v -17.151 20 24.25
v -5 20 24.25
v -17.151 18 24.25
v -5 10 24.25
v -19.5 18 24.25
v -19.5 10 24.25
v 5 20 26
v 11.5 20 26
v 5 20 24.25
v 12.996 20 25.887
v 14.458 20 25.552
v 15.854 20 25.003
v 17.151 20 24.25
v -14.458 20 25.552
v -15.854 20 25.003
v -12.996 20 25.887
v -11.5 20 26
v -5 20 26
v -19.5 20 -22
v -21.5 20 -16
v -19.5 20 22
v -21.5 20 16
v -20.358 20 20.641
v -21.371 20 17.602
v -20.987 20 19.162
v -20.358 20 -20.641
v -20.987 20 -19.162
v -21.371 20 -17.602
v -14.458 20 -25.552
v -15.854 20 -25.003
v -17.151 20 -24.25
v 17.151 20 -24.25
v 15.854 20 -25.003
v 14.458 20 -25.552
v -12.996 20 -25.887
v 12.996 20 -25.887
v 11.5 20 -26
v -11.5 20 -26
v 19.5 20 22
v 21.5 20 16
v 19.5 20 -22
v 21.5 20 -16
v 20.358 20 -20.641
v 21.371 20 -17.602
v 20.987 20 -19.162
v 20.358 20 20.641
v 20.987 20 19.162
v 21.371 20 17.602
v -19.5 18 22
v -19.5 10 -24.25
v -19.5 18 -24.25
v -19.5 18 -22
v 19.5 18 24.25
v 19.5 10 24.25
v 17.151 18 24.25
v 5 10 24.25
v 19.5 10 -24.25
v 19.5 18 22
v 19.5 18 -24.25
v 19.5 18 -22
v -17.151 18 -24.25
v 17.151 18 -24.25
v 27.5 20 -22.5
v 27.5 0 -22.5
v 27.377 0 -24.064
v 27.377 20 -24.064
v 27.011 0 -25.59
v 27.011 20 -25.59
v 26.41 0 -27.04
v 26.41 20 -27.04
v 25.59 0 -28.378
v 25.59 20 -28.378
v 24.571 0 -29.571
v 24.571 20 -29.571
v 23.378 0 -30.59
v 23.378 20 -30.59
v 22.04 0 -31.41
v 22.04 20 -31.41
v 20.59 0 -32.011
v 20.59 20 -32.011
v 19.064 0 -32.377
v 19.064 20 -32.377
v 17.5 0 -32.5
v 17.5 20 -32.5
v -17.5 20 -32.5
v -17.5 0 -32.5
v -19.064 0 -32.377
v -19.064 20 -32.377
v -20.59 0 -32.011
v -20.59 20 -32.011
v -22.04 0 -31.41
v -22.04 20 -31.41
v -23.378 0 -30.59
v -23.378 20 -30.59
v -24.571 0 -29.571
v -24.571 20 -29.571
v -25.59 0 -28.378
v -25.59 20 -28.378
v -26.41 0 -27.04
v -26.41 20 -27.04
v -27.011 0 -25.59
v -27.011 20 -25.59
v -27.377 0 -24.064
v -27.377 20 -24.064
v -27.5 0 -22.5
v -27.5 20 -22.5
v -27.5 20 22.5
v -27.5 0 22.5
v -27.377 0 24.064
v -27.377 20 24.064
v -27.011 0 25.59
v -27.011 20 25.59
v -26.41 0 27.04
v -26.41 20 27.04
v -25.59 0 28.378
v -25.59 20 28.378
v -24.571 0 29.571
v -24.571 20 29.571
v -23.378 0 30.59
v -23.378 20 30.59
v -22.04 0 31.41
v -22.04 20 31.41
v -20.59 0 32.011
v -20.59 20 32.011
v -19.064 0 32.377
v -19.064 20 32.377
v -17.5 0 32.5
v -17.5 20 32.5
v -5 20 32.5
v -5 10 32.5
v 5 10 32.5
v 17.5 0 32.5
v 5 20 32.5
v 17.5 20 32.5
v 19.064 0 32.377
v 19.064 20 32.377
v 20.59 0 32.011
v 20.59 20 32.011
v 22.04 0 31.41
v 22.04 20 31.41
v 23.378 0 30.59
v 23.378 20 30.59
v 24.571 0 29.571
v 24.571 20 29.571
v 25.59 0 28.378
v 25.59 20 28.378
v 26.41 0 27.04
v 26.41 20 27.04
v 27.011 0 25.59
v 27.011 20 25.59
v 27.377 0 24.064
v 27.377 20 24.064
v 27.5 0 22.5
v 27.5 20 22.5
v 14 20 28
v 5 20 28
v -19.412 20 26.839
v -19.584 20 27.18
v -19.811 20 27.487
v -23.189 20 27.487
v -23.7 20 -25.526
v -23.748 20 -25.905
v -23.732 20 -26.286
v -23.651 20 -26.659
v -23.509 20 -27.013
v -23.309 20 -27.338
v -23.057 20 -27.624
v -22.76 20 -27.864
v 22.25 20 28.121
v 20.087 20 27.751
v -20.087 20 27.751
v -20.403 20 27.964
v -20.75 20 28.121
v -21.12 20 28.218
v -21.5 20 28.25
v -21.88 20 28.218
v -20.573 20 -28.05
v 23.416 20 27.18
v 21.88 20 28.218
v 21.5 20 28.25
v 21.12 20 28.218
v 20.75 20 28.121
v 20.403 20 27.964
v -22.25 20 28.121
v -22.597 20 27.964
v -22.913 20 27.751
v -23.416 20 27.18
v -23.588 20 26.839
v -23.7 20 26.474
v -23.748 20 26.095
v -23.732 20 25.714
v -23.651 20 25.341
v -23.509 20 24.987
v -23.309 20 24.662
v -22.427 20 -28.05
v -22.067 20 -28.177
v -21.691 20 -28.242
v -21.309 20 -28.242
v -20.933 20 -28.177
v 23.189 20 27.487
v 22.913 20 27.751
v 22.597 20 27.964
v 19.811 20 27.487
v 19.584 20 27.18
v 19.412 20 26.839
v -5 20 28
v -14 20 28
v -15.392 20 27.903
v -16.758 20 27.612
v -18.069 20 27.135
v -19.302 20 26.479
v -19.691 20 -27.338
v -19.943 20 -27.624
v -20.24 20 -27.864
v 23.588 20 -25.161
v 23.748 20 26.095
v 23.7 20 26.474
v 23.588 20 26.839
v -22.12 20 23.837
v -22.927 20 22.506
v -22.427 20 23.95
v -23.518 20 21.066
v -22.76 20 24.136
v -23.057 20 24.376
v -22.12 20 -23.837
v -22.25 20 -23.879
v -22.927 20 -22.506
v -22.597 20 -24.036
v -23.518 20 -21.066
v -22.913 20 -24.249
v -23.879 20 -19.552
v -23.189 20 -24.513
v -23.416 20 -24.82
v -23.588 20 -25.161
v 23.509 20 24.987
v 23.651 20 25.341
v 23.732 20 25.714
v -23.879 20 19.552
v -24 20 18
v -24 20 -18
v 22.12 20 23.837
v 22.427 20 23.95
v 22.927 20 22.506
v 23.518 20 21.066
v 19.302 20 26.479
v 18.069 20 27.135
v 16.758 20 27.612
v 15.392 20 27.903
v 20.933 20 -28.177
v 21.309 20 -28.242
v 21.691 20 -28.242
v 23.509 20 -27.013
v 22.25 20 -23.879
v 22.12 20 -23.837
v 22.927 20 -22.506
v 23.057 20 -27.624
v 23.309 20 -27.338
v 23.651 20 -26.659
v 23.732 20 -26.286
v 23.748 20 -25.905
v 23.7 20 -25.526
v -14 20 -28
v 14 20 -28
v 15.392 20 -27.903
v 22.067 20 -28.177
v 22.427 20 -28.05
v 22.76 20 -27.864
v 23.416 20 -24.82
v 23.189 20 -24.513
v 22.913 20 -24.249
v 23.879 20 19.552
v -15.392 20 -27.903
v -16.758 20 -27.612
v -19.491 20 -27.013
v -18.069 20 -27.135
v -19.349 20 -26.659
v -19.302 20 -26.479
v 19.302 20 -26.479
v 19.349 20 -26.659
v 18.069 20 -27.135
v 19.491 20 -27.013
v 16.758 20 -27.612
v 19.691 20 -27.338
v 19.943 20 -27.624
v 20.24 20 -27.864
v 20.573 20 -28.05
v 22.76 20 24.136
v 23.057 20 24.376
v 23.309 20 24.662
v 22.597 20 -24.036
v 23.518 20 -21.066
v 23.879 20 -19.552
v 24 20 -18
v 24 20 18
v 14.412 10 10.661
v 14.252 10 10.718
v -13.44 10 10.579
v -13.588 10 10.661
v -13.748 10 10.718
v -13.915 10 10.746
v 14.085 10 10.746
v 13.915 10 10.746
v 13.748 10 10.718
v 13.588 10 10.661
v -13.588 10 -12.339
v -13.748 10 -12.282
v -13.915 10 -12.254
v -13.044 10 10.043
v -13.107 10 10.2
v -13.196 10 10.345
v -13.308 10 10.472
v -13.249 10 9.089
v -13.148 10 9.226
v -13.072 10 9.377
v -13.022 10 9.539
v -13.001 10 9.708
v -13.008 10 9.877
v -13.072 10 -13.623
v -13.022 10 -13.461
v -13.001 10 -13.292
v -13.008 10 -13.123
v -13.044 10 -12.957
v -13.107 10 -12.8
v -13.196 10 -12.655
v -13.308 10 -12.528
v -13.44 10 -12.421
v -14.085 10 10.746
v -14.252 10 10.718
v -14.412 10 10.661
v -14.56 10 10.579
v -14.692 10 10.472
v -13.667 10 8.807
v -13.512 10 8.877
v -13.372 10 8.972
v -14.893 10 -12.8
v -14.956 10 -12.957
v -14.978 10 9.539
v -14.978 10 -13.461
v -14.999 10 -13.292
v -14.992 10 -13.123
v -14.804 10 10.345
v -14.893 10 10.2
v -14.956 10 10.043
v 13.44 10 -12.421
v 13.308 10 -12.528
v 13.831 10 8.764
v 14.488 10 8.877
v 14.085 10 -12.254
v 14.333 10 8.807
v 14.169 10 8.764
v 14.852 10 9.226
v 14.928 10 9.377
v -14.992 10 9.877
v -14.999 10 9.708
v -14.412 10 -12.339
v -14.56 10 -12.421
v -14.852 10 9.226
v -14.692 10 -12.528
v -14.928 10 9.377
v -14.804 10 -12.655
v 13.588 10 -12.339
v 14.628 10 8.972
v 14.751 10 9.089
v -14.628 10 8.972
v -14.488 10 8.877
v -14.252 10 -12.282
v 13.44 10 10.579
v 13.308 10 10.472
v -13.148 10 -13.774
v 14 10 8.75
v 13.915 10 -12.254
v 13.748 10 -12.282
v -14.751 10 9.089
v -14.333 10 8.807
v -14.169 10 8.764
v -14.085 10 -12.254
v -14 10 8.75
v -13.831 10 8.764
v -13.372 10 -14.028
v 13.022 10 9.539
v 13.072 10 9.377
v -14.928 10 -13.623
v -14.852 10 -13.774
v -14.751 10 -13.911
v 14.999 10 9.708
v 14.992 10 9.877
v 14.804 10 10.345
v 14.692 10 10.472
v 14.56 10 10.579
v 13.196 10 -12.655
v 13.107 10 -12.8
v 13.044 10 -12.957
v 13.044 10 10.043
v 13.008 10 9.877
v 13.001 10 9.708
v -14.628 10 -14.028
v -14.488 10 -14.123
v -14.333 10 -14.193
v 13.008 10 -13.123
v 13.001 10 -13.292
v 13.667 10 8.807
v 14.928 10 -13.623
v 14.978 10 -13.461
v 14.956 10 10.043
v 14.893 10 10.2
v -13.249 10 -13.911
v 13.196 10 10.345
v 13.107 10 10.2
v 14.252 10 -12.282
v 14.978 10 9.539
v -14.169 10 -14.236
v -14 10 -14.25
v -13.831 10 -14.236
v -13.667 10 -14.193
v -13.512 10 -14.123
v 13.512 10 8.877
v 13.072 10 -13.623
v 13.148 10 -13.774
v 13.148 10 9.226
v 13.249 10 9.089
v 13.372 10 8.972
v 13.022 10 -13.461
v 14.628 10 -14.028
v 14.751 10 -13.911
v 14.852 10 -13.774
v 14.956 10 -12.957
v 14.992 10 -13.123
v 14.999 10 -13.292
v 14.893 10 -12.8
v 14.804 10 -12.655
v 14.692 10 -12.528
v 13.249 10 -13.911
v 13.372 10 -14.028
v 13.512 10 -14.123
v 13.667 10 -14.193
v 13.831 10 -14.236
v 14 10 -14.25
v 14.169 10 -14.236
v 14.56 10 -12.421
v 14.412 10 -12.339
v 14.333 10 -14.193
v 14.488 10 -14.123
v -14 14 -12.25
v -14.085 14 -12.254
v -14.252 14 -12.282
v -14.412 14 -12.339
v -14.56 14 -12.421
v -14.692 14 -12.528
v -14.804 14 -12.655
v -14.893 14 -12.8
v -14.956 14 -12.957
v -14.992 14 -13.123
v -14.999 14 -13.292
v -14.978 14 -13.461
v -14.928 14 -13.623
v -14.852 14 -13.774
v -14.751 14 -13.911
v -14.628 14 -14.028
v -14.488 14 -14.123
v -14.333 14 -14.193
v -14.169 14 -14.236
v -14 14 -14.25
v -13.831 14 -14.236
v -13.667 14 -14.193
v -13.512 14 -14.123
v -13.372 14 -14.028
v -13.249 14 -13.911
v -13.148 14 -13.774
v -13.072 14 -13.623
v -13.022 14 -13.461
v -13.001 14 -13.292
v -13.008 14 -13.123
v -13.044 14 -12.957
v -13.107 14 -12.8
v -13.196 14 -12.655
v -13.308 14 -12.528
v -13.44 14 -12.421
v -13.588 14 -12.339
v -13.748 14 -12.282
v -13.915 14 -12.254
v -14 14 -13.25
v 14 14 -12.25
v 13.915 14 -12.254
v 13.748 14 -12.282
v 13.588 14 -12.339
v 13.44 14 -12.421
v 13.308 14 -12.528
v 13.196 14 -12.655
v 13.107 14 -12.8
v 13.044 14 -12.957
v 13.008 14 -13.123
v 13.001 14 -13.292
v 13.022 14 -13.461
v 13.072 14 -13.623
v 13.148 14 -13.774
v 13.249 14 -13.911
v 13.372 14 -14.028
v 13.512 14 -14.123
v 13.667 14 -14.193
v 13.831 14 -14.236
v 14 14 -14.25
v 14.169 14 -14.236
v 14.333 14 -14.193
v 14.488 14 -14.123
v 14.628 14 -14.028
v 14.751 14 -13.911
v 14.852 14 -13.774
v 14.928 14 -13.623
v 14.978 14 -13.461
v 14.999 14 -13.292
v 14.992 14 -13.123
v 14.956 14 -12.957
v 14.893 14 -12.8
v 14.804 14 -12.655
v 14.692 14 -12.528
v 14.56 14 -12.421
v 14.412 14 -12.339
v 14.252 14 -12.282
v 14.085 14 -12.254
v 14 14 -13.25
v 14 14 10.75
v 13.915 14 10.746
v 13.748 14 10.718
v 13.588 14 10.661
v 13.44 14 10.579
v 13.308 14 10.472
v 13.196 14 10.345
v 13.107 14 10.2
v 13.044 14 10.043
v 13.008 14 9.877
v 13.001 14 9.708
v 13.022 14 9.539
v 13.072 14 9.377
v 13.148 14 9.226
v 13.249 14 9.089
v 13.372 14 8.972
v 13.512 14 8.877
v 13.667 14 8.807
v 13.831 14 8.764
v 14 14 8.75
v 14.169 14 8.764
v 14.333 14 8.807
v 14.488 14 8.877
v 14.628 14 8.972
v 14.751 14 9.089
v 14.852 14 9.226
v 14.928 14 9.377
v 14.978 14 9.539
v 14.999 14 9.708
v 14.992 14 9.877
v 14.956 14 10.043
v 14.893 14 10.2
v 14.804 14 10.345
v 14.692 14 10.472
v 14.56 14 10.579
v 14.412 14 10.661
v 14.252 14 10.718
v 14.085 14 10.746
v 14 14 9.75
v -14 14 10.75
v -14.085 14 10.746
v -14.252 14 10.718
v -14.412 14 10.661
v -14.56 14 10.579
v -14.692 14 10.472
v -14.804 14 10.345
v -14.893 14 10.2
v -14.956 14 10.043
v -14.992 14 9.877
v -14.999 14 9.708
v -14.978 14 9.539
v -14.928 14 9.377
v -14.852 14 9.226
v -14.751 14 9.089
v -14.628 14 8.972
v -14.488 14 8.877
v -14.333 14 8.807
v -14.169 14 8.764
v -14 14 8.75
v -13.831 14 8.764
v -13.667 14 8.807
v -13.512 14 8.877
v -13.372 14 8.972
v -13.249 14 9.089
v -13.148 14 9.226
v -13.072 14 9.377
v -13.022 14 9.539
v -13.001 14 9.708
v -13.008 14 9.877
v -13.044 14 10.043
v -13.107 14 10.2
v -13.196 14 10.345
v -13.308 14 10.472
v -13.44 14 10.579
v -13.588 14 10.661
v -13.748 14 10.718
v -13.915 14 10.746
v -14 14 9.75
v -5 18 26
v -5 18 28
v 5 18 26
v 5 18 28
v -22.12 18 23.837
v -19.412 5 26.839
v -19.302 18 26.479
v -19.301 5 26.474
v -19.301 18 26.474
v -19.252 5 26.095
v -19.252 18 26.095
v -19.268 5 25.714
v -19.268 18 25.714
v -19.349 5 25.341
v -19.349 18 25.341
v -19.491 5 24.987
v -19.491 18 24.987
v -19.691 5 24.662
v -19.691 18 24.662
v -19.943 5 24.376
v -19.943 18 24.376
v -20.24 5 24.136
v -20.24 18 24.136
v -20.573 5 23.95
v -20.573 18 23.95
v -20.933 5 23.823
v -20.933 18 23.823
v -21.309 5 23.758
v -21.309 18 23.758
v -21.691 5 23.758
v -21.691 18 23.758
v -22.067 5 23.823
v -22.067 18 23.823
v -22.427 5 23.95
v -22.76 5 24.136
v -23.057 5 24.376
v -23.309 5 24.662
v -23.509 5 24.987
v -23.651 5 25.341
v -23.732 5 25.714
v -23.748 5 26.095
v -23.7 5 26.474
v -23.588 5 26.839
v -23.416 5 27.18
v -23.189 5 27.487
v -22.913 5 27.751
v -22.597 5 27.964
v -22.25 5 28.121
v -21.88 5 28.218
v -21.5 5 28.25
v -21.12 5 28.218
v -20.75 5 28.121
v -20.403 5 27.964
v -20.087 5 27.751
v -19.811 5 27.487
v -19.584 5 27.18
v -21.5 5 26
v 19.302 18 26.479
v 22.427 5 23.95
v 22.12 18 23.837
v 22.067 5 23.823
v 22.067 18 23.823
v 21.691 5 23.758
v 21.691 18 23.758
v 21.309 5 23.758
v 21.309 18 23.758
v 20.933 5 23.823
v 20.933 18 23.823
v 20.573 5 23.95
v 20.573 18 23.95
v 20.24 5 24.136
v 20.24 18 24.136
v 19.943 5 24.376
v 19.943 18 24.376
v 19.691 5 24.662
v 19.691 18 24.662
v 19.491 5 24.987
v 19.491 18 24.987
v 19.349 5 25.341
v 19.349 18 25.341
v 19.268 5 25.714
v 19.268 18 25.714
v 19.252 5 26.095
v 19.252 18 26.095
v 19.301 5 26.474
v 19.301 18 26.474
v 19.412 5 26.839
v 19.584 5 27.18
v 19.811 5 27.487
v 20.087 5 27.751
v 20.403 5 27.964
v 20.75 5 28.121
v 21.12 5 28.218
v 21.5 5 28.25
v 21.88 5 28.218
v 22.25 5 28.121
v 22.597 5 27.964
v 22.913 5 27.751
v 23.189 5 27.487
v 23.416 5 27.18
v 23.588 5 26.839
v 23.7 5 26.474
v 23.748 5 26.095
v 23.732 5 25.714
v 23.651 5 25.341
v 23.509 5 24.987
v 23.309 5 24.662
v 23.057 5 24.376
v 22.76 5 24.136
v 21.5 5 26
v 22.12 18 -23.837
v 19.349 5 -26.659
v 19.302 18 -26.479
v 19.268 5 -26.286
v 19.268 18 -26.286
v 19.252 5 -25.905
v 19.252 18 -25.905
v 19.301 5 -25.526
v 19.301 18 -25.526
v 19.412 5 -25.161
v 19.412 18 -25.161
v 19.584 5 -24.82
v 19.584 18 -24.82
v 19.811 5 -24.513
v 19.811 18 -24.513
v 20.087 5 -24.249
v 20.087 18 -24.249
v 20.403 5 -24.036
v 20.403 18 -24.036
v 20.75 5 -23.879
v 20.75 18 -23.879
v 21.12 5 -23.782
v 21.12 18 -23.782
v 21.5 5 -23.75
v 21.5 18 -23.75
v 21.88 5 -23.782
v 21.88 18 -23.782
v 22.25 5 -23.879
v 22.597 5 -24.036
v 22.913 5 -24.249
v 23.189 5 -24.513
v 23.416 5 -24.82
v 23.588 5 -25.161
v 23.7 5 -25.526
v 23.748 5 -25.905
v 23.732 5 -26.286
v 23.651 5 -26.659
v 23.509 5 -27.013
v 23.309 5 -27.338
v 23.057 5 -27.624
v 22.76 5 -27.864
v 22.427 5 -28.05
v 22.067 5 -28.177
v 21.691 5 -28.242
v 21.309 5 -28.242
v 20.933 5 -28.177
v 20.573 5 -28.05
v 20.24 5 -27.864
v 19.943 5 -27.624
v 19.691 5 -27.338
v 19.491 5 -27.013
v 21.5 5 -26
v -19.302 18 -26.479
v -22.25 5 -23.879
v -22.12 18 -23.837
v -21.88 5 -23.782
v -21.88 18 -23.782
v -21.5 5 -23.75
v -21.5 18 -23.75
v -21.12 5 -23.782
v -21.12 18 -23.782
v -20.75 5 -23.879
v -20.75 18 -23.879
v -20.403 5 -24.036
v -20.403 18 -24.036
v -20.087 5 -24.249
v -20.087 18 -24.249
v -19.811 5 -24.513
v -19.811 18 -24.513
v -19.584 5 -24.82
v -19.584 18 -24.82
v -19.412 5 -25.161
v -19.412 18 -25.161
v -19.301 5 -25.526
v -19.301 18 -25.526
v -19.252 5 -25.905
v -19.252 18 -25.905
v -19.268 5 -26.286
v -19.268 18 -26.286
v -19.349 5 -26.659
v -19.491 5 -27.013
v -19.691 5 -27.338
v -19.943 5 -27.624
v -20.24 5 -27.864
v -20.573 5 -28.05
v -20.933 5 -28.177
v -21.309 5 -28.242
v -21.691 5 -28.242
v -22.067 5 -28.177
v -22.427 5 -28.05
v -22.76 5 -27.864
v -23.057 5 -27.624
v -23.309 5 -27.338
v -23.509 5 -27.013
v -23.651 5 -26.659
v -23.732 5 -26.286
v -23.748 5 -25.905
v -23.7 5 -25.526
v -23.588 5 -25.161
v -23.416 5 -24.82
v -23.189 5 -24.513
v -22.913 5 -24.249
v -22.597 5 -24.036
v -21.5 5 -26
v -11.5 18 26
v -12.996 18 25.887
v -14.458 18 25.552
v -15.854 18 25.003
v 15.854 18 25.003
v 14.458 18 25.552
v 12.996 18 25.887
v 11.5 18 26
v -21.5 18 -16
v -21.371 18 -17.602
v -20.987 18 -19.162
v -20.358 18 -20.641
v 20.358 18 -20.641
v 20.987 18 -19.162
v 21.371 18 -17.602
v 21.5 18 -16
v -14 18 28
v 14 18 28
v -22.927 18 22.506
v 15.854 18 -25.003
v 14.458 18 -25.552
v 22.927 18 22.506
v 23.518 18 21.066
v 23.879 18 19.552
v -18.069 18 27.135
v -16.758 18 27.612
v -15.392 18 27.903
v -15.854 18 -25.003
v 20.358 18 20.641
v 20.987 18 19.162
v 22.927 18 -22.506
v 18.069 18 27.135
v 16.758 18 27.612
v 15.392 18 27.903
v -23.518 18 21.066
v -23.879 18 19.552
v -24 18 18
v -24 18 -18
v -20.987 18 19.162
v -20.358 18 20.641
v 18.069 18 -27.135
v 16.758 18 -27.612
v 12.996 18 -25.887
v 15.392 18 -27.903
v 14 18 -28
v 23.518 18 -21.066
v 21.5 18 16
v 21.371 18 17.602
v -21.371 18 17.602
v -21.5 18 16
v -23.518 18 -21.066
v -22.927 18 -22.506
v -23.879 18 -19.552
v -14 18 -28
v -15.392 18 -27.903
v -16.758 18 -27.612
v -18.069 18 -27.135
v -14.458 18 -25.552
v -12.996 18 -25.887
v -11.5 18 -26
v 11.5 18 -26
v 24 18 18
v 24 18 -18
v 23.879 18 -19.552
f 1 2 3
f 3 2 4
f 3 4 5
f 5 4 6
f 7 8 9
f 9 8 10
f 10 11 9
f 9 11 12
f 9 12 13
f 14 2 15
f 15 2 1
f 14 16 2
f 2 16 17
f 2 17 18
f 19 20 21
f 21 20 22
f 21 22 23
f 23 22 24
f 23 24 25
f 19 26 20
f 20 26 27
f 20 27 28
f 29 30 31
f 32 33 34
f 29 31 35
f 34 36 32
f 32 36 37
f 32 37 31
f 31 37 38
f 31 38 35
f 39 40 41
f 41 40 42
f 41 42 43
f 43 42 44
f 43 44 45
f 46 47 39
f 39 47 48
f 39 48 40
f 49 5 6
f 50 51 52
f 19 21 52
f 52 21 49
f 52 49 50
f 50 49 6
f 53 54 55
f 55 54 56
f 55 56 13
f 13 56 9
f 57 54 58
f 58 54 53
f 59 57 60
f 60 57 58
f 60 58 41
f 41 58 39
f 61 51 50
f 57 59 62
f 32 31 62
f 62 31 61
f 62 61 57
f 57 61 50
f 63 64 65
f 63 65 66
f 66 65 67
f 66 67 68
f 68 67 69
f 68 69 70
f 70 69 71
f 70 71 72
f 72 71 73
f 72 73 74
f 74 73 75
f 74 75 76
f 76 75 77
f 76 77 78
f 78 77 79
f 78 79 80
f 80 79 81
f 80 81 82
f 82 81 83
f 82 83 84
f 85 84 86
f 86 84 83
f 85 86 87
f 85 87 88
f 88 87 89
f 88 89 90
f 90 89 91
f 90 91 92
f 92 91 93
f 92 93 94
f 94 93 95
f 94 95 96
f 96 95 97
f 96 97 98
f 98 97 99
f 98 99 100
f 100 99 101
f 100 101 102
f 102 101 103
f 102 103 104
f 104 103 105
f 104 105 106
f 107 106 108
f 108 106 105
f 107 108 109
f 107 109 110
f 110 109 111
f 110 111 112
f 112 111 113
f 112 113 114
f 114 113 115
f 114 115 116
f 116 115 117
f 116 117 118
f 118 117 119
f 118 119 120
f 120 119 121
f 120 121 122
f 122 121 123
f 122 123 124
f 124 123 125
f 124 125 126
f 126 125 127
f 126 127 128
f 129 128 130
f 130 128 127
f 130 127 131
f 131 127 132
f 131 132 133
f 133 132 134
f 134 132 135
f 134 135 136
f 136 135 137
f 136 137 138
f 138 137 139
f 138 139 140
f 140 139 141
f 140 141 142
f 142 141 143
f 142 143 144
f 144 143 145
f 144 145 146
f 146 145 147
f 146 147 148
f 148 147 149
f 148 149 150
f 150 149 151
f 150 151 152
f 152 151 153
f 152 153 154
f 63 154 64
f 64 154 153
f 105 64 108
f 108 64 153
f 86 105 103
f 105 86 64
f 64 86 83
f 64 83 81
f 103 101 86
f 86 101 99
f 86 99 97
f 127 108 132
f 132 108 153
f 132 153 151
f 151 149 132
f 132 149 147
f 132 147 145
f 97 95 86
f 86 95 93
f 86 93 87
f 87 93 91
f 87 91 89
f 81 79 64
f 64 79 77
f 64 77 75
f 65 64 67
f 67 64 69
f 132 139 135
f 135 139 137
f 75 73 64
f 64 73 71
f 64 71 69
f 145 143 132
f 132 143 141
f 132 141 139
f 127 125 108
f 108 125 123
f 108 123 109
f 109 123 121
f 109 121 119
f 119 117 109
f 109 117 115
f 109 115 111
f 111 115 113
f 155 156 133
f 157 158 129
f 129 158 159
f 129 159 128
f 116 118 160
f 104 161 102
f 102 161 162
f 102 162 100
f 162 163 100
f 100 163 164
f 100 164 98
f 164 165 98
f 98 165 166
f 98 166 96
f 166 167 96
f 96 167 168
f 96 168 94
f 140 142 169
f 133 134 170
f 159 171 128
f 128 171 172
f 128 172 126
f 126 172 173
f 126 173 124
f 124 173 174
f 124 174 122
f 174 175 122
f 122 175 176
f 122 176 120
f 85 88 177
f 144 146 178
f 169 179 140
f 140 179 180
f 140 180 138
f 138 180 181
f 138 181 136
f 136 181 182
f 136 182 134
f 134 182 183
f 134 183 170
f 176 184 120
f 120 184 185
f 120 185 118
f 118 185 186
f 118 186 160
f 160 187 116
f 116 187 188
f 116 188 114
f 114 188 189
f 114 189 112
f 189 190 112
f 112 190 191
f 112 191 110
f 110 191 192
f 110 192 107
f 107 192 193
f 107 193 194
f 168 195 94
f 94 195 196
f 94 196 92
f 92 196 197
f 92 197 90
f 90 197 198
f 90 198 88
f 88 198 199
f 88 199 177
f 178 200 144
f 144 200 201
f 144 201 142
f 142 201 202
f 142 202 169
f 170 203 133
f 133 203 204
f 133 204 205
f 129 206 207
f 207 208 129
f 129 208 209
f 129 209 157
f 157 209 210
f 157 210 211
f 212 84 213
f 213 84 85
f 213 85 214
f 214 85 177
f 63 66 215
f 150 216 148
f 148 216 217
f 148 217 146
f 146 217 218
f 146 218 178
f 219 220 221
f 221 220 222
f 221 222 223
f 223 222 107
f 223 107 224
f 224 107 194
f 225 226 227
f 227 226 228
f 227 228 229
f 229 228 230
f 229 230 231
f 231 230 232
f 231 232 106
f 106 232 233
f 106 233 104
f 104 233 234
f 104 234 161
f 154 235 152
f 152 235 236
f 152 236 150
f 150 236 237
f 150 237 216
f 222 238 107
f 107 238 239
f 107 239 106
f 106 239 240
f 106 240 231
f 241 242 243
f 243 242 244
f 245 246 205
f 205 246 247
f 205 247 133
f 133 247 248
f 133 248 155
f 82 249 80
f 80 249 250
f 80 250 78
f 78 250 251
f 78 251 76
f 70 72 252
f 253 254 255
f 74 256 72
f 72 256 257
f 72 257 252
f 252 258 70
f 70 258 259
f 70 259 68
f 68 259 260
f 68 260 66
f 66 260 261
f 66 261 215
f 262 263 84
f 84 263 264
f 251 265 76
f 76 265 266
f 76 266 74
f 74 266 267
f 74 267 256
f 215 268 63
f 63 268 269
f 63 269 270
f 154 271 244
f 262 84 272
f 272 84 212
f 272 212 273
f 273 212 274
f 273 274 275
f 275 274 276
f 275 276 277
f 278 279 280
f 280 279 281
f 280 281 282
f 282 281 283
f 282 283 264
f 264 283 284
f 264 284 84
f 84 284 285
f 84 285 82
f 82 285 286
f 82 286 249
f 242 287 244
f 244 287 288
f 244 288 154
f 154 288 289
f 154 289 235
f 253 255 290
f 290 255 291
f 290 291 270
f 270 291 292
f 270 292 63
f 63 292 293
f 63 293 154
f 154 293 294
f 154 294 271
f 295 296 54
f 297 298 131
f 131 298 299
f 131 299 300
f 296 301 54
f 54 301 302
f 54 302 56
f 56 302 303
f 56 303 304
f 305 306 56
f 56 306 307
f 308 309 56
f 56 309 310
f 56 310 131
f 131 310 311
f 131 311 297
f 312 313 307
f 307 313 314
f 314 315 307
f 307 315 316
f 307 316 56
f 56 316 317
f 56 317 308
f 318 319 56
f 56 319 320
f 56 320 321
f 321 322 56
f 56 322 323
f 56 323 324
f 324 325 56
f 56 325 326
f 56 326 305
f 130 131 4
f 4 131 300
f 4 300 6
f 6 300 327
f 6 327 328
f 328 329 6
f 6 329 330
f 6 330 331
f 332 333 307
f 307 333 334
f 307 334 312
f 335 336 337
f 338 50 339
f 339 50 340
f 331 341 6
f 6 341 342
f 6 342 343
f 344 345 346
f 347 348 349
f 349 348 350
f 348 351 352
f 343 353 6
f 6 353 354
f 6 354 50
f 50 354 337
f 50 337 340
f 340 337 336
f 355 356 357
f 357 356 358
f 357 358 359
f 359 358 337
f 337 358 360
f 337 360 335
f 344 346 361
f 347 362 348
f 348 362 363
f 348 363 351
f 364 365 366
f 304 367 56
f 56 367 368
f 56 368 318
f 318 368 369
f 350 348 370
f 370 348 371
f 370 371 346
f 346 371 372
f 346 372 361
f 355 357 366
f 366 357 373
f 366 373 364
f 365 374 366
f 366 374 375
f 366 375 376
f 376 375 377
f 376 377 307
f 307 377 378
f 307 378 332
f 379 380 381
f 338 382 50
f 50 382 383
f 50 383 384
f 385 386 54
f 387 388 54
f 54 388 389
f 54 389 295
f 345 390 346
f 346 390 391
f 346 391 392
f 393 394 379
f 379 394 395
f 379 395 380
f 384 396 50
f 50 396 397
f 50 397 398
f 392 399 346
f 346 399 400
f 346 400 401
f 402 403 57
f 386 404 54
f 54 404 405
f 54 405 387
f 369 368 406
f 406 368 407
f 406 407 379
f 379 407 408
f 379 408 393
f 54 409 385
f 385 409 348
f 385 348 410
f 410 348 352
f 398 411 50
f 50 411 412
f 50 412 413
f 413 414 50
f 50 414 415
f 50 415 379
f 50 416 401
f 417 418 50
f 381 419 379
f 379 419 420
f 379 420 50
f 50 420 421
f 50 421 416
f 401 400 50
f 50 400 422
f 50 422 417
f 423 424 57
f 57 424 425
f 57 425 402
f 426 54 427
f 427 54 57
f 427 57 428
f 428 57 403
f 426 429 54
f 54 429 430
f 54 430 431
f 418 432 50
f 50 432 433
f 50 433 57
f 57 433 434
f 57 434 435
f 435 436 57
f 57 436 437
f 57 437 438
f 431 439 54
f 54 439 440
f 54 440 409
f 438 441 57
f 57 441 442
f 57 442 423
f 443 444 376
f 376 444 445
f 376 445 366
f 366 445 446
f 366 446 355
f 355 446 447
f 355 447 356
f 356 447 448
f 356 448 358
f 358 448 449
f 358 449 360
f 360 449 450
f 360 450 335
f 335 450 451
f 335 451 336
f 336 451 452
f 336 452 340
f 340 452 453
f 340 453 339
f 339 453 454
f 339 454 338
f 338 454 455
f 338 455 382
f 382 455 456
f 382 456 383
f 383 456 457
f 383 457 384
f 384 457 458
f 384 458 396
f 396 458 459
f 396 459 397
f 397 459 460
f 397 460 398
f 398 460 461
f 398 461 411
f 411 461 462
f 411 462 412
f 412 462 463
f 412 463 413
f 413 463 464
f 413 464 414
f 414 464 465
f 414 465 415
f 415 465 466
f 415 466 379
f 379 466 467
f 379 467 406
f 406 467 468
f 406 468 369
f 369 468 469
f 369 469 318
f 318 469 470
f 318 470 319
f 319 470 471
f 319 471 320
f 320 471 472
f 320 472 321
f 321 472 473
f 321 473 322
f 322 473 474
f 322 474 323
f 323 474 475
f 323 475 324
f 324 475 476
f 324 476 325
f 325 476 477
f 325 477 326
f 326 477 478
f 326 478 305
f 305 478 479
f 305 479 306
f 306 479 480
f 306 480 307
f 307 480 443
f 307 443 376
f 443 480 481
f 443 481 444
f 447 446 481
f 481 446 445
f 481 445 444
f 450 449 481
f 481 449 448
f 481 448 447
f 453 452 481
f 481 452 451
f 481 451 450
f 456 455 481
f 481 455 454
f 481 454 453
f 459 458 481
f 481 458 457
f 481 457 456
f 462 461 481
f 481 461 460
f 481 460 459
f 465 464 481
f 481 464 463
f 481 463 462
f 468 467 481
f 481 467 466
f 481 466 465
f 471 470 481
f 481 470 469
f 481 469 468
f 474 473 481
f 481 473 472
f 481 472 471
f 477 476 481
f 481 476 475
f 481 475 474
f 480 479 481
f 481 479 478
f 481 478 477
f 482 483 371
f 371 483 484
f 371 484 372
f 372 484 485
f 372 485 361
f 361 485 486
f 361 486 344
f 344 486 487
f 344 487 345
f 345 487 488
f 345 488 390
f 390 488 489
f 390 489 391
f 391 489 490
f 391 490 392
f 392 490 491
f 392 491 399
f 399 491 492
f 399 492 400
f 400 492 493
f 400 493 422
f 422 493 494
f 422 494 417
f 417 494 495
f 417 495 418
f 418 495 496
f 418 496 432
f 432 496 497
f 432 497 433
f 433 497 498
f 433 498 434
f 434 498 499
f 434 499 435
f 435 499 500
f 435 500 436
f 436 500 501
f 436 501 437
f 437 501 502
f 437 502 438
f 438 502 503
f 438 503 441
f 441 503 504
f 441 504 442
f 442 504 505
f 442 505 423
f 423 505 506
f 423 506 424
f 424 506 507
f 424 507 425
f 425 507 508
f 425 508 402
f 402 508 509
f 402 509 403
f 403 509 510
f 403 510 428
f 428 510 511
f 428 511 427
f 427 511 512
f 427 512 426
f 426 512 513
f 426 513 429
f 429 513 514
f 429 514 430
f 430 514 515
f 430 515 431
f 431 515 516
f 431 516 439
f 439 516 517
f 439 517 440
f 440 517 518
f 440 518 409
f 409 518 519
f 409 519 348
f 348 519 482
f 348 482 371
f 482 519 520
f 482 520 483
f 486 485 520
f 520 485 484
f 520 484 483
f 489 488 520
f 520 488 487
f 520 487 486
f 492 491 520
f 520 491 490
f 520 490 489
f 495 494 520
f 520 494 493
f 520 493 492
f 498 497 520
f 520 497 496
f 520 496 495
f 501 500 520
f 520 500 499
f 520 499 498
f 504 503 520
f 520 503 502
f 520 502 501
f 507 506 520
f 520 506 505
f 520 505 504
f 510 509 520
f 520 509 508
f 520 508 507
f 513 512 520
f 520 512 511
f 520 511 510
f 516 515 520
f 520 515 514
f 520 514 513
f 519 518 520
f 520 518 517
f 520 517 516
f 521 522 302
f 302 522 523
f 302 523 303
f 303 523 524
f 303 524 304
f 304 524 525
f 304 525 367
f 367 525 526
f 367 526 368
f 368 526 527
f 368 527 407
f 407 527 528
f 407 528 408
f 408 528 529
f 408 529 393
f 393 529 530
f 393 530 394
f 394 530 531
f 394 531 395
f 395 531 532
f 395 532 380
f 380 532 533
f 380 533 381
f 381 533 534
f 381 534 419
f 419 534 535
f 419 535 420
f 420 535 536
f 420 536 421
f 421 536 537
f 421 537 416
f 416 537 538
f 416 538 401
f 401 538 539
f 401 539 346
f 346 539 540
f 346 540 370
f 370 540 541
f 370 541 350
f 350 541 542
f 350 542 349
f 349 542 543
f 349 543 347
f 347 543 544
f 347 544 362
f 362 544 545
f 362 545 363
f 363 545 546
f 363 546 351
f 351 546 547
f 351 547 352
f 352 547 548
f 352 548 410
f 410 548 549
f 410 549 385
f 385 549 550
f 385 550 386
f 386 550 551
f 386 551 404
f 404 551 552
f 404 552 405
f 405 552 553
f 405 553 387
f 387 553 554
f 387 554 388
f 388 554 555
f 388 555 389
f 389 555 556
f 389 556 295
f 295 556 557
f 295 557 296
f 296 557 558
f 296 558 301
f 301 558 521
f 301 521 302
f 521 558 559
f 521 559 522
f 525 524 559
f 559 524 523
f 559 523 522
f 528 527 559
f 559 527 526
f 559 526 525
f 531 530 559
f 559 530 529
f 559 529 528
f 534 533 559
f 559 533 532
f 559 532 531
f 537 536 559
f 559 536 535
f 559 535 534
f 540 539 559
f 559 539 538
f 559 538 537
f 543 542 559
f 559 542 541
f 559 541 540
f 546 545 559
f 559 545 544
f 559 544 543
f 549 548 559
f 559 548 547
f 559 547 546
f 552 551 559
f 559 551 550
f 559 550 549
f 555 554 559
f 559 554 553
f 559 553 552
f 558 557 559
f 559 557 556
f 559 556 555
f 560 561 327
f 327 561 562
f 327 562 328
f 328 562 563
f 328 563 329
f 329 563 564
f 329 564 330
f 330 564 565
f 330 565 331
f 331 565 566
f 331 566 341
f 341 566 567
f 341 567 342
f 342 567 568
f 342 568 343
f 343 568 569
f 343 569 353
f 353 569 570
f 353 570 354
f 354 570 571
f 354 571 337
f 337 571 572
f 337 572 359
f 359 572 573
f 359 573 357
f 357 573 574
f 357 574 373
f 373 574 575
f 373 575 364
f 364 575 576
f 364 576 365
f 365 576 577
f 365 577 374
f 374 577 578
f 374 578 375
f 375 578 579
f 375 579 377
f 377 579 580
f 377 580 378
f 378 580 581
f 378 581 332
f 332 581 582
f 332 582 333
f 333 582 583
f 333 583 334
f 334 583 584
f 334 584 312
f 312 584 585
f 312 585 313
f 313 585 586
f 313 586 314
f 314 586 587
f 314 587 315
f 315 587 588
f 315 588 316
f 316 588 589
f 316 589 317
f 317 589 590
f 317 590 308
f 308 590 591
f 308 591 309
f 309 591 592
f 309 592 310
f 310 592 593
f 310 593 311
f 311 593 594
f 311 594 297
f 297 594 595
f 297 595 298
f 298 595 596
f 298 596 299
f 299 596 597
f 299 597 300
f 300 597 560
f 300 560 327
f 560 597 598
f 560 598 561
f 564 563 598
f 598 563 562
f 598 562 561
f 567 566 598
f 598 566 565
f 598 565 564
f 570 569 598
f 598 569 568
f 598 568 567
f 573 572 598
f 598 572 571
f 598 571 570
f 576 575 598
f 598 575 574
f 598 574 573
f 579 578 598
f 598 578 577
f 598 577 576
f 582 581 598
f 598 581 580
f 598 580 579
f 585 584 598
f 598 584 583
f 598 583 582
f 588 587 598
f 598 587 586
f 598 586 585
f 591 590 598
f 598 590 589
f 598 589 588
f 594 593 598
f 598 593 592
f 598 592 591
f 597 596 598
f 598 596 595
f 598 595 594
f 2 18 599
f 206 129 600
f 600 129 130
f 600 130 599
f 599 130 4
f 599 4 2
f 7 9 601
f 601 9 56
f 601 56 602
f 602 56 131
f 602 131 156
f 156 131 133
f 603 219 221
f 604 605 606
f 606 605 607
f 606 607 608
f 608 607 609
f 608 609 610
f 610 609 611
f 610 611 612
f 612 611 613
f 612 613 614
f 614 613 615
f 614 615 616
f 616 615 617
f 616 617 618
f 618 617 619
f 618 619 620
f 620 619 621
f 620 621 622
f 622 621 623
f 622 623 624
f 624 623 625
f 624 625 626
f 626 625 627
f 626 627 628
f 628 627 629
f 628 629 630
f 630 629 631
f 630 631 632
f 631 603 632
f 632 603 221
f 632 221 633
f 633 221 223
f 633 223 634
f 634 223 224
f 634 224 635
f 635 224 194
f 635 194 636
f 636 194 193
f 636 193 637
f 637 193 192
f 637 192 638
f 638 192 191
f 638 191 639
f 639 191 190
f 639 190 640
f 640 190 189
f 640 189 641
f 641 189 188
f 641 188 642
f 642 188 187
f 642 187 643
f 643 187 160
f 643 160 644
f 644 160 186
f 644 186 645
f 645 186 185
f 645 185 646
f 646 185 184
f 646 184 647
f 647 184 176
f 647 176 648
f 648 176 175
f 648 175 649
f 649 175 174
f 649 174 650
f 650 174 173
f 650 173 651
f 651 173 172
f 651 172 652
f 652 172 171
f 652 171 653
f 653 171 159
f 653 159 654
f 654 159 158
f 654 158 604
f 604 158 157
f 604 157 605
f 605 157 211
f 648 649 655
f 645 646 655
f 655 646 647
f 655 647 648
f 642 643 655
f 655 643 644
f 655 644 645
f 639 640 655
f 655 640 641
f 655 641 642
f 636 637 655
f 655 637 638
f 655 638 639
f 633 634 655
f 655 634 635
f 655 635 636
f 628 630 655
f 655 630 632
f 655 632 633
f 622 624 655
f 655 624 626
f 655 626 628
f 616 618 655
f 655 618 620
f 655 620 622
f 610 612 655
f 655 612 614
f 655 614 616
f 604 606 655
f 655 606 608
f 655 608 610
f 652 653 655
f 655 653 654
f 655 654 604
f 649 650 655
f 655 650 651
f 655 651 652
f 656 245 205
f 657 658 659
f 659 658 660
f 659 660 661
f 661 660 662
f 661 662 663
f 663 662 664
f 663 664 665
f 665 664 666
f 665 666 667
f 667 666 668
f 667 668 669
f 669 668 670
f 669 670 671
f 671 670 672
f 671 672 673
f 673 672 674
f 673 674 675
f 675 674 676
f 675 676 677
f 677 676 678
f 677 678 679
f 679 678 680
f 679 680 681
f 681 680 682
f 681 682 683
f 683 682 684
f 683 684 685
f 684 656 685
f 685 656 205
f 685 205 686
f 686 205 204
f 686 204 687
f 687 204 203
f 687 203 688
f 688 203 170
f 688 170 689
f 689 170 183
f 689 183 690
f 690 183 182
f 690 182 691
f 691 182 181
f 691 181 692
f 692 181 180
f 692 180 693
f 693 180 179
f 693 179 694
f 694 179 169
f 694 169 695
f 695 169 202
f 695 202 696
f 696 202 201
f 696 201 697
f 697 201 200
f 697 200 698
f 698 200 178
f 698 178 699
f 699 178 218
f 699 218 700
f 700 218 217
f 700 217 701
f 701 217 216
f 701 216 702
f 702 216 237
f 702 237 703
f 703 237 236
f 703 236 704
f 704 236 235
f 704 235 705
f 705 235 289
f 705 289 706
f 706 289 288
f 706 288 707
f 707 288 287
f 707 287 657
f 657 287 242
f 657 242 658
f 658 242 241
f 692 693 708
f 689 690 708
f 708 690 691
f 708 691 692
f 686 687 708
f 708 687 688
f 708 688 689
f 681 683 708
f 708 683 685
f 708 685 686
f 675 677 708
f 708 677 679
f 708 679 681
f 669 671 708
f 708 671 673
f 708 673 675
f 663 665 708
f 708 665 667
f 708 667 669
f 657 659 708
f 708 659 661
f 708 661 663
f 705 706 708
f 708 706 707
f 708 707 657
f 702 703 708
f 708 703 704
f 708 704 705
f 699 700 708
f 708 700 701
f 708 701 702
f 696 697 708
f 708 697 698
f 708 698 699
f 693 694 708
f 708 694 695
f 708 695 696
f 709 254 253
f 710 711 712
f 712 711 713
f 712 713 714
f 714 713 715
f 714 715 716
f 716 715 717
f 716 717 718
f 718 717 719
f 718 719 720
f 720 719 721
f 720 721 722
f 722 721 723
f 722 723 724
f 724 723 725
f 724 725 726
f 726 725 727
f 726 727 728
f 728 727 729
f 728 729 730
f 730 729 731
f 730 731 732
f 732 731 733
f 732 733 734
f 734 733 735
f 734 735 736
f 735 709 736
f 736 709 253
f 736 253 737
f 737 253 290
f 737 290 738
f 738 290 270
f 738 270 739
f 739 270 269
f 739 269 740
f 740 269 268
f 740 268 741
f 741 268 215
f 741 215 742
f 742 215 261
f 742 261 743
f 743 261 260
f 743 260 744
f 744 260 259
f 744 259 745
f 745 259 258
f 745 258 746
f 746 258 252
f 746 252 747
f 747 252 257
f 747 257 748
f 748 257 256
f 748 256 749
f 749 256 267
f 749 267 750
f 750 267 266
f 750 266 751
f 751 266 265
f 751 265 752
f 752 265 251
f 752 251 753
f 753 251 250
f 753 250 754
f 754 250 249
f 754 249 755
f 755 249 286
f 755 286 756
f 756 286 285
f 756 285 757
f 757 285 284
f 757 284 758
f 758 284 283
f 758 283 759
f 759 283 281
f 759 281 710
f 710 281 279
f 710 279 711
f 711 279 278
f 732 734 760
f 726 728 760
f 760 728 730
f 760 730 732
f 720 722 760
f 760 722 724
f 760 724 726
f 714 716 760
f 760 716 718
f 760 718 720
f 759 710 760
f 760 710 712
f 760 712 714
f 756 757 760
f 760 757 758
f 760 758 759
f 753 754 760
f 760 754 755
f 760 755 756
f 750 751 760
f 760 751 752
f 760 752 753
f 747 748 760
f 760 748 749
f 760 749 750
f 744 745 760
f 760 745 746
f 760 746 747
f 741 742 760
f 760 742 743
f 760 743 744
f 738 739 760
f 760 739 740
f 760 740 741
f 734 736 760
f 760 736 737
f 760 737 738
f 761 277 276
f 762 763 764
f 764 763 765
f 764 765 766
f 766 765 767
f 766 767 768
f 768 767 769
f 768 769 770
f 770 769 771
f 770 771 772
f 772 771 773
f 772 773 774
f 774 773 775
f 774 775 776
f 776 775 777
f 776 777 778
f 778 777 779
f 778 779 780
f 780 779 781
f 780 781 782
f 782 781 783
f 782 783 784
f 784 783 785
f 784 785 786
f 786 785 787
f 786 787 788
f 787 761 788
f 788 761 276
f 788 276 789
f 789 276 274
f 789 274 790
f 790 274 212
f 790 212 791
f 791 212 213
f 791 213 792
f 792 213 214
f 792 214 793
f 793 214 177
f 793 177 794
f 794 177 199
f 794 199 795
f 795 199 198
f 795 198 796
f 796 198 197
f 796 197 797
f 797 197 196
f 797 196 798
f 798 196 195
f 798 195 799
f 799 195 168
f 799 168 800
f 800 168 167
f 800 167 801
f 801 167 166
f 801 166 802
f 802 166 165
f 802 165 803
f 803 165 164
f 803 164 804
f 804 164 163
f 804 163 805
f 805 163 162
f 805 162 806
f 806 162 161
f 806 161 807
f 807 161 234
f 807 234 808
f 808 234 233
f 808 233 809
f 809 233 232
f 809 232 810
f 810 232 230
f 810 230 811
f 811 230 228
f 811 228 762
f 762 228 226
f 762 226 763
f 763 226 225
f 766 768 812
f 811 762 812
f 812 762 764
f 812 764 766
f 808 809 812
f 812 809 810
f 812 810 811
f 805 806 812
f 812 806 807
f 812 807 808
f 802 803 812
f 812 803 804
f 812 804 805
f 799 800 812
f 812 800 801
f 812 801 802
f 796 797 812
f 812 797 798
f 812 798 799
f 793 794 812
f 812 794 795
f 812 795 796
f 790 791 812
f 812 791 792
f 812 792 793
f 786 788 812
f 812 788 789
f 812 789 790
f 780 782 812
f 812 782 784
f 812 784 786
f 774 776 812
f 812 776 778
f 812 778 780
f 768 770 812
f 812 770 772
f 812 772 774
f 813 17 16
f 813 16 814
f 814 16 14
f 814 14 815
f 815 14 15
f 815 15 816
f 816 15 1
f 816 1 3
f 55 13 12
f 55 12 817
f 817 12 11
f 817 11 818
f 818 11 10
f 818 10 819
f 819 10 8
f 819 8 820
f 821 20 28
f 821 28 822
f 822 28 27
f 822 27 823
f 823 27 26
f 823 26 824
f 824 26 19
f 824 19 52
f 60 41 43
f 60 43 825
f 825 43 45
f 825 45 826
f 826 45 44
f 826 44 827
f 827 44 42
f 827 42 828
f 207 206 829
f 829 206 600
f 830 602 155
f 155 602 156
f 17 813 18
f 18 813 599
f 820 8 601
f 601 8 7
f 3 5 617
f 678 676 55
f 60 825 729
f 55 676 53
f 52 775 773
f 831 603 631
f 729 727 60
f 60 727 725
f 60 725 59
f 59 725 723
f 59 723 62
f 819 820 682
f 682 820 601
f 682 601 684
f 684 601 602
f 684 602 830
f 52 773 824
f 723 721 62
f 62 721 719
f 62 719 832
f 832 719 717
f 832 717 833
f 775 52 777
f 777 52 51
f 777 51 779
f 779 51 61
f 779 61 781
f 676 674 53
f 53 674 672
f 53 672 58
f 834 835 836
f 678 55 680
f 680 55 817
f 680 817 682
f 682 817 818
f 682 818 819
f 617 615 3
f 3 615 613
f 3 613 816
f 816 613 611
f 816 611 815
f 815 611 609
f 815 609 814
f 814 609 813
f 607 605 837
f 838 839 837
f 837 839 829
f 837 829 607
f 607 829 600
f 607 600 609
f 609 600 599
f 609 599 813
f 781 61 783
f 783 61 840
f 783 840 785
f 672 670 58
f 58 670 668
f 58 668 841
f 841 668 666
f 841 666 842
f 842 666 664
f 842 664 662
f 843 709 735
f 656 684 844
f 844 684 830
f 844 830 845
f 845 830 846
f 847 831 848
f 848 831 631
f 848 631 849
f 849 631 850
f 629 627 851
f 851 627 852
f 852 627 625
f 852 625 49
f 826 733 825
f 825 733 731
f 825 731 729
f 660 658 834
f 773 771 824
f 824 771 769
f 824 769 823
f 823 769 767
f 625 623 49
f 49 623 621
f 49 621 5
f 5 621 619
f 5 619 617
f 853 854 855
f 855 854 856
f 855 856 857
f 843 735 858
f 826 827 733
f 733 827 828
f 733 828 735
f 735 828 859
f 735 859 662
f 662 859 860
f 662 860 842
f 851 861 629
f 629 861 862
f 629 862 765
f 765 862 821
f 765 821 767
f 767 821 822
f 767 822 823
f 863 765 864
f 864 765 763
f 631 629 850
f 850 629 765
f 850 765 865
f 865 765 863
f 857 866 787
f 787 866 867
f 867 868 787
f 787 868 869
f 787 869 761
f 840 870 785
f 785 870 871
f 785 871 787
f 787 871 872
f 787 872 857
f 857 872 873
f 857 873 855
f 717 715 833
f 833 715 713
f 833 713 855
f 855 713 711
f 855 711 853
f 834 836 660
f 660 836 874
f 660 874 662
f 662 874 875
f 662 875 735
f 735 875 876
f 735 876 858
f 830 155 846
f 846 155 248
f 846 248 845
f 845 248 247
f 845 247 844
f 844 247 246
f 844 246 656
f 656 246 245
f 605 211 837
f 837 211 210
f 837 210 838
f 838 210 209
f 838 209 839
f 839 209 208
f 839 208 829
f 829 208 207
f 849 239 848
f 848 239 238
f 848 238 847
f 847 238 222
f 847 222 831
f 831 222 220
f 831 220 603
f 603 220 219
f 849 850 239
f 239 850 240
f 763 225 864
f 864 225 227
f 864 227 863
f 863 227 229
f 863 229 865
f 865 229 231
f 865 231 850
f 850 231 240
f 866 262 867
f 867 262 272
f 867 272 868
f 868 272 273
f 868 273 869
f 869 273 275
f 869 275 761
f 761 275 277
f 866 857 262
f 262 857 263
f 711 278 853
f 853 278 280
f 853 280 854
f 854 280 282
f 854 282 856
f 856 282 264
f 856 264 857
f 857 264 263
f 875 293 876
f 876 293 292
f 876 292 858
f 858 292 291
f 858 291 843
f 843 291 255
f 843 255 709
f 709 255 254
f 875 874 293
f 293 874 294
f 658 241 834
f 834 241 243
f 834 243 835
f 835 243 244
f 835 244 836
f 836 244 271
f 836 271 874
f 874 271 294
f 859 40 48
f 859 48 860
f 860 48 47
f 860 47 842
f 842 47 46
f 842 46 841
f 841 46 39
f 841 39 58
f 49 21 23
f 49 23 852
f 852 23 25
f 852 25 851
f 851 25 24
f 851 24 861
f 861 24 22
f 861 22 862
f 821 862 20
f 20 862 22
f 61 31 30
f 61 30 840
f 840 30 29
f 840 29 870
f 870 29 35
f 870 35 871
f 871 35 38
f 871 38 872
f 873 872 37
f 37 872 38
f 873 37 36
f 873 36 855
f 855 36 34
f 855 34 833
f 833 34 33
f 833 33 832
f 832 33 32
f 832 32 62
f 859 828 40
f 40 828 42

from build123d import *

# Parameters (mm, degrees)
BOSS_EXTRUDE1_DEPTH = 10
SKETCH2_W           = 39
SKETCH2_H           = 48.5
BOSS_EXTRUDE2_DEPTH = 10
SKETCH6_R           = 1
BOSS_EXTRUDE3_DEPTH = 4
SKETCH7_W           = 10
SKETCH7_H           = 8.25
CUT_EXTRUDE1_DEPTH  = 10
SKETCH8_R           = 2.25
CUT_EXTRUDE2_DEPTH  = 15
CUT_EXTRUDE3_DEPTH  = 2


with BuildPart() as part:
    # Sketch1 → Boss-Extrude1 (new body)
    with BuildSketch(Plane(origin=(0, 0, 0), x_dir=(1, 0, 0), z_dir=(0, 1, 0))):
        with BuildLine():
            Line((-17.5, 32.5), (17.5, 32.5))
            ThreePointArc((17.5, 32.5), (24.571067812, 29.571067812), (27.5, 22.5))
            Line((27.5, 22.5), (27.5, -22.5))
            ThreePointArc((27.5, -22.5), (24.571067812, -29.571067812), (17.5, -32.5))
            Line((17.5, -32.5), (-17.5, -32.5))
            ThreePointArc((-17.5, -32.5), (-24.571067812, -29.571067812), (-27.5, -22.5))
            Line((-27.5, -22.5), (-27.5, 22.5))
            ThreePointArc((-27.5, 22.5), (-24.571067812, 29.571067812), (-17.5, 32.5))
        make_face()
    extrude(amount=BOSS_EXTRUDE1_DEPTH)

    # Sketch2 → Boss-Extrude2 (add)
    with BuildSketch(Plane(origin=(0, 10, 0), x_dir=(1, 0, 0), z_dir=(0, 1, 0))):
        with BuildLine():
            Line((27.5, 22.5), (27.5, -22.5))
            ThreePointArc((27.5, -22.5), (24.571067812, -29.571067812), (17.5, -32.5))
            Line((17.5, -32.5), (-17.5, -32.5))
            ThreePointArc((-17.5, -32.5), (-24.571067812, -29.571067812), (-27.5, -22.5))
            Line((-27.5, -22.5), (-27.5, 22.5))
            ThreePointArc((-27.5, 22.5), (-24.571067812, 29.571067812), (-17.5, 32.5))
            Line((-17.5, 32.5), (17.5, 32.5))
            ThreePointArc((17.5, 32.5), (24.571067812, 29.571067812), (27.5, 22.5))
        make_face()
        Rectangle(SKETCH2_W, SKETCH2_H, mode=Mode.SUBTRACT)
    extrude(amount=BOSS_EXTRUDE2_DEPTH)

    # Sketch6 → Boss-Extrude3 (add)
    with BuildSketch(Plane(origin=(0, 10, 0), x_dir=(1, 0, 0), z_dir=(0, 1, 0))):
        with Locations(Location((-14, 13.25, 0), (0, 0, 90))):
            Circle(SKETCH6_R)
        with Locations(Location((14, 13.25, 0), (0, 0, 90))):
            Circle(SKETCH6_R)
        with Locations(Location((14, -9.75, 0), (0, 0, 90))):
            Circle(SKETCH6_R)
        with Locations(Location((-14, -9.75, 0), (0, 0, 90))):
            Circle(SKETCH6_R)
    extrude(amount=BOSS_EXTRUDE3_DEPTH)

    # Sketch7 → Cut-Extrude1 (cut)
    with BuildSketch(Plane(origin=(0, 20, 0), x_dir=(1, 0, 0), z_dir=(0, 1, 0))):
        with Locations((0, -28.375)):
            Rectangle(SKETCH7_W, SKETCH7_H)
    extrude(amount=-CUT_EXTRUDE1_DEPTH, mode=Mode.SUBTRACT)

    # Sketch8 → Cut-Extrude2 (cut)
    with BuildSketch(Plane(origin=(0, 20, 0), x_dir=(1, 0, 0), z_dir=(0, 1, 0))):
        with Locations(Location((-21.5, -26, 0), (0, 0, 270))):
            Circle(SKETCH8_R)
        with Locations(Location((21.5, -26, 0), (0, 0, 270))):
            Circle(SKETCH8_R)
        with Locations(Location((21.5, 26, 0), (0, 0, 270))):
            Circle(SKETCH8_R)
        with Locations(Location((-21.5, 26, 0), (0, 0, 270))):
            Circle(SKETCH8_R)
    extrude(amount=-CUT_EXTRUDE2_DEPTH, mode=Mode.SUBTRACT)

    # Sketch9 → Cut-Extrude3 (cut)
    with BuildSketch(Plane(origin=(0, 20, 0), x_dir=(1, 0, 0), z_dir=(0, 1, 0))):
        with BuildLine():
            Line((-14, 28), (14, 28))
            ThreePointArc((14, 28), (16.757724491, 27.612229483), (19.301576132, 26.478991126))
            ThreePointArc((19.301576132, 26.478991126), (19.96113246, 24.358541291), (22.119681664, 23.83701719))
            ThreePointArc((22.119681664, 23.83701719), (23.518319616, 21.066201507), (24, 18))
            Line((24, 18), (24, -18))
            ThreePointArc((24, -18), (23.518319616, -21.066201507), (22.119681664, -23.83701719))
            ThreePointArc((22.119681664, -23.83701719), (19.96113246, -24.358541291), (19.301576132, -26.478991126))
            ThreePointArc((19.301576132, -26.478991126), (16.757724491, -27.612229483), (14, -28))
            Line((14, -28), (-14, -28))
            ThreePointArc((-14, -28), (-16.757724491, -27.612229483), (-19.301576132, -26.478991126))
            ThreePointArc((-19.301576132, -26.478991126), (-19.96113246, -24.358541291), (-22.119681664, -23.83701719))
            ThreePointArc((-22.119681664, -23.83701719), (-23.518319616, -21.066201507), (-24, -18))
            Line((-24, -18), (-24, 18))
            ThreePointArc((-24, 18), (-23.518319616, 21.066201507), (-22.119681664, 23.83701719))
            ThreePointArc((-22.119681664, 23.83701719), (-19.96113246, 24.358541291), (-19.301576132, 26.478991126))
            ThreePointArc((-19.301576132, 26.478991126), (-16.757724491, 27.612229483), (-14, 28))
        make_face()
        with BuildLine():
            Line((-11.5, 26), (11.5, 26))
            ThreePointArc((11.5, 26), (18.571067812, 23.071067812), (21.5, 16))
            Line((21.5, 16), (21.5, -16))
            ThreePointArc((21.5, -16), (18.571067812, -23.071067812), (11.5, -26))
            Line((11.5, -26), (-11.5, -26))
            ThreePointArc((-11.5, -26), (-18.571067812, -23.071067812), (-21.5, -16))
            Line((-21.5, -16), (-21.5, 16))
            ThreePointArc((-21.5, 16), (-18.571067812, 23.071067812), (-11.5, 26))
        make_face(mode=Mode.SUBTRACT)
    extrude(amount=-CUT_EXTRUDE3_DEPTH, mode=Mode.SUBTRACT)


solid = part.part
